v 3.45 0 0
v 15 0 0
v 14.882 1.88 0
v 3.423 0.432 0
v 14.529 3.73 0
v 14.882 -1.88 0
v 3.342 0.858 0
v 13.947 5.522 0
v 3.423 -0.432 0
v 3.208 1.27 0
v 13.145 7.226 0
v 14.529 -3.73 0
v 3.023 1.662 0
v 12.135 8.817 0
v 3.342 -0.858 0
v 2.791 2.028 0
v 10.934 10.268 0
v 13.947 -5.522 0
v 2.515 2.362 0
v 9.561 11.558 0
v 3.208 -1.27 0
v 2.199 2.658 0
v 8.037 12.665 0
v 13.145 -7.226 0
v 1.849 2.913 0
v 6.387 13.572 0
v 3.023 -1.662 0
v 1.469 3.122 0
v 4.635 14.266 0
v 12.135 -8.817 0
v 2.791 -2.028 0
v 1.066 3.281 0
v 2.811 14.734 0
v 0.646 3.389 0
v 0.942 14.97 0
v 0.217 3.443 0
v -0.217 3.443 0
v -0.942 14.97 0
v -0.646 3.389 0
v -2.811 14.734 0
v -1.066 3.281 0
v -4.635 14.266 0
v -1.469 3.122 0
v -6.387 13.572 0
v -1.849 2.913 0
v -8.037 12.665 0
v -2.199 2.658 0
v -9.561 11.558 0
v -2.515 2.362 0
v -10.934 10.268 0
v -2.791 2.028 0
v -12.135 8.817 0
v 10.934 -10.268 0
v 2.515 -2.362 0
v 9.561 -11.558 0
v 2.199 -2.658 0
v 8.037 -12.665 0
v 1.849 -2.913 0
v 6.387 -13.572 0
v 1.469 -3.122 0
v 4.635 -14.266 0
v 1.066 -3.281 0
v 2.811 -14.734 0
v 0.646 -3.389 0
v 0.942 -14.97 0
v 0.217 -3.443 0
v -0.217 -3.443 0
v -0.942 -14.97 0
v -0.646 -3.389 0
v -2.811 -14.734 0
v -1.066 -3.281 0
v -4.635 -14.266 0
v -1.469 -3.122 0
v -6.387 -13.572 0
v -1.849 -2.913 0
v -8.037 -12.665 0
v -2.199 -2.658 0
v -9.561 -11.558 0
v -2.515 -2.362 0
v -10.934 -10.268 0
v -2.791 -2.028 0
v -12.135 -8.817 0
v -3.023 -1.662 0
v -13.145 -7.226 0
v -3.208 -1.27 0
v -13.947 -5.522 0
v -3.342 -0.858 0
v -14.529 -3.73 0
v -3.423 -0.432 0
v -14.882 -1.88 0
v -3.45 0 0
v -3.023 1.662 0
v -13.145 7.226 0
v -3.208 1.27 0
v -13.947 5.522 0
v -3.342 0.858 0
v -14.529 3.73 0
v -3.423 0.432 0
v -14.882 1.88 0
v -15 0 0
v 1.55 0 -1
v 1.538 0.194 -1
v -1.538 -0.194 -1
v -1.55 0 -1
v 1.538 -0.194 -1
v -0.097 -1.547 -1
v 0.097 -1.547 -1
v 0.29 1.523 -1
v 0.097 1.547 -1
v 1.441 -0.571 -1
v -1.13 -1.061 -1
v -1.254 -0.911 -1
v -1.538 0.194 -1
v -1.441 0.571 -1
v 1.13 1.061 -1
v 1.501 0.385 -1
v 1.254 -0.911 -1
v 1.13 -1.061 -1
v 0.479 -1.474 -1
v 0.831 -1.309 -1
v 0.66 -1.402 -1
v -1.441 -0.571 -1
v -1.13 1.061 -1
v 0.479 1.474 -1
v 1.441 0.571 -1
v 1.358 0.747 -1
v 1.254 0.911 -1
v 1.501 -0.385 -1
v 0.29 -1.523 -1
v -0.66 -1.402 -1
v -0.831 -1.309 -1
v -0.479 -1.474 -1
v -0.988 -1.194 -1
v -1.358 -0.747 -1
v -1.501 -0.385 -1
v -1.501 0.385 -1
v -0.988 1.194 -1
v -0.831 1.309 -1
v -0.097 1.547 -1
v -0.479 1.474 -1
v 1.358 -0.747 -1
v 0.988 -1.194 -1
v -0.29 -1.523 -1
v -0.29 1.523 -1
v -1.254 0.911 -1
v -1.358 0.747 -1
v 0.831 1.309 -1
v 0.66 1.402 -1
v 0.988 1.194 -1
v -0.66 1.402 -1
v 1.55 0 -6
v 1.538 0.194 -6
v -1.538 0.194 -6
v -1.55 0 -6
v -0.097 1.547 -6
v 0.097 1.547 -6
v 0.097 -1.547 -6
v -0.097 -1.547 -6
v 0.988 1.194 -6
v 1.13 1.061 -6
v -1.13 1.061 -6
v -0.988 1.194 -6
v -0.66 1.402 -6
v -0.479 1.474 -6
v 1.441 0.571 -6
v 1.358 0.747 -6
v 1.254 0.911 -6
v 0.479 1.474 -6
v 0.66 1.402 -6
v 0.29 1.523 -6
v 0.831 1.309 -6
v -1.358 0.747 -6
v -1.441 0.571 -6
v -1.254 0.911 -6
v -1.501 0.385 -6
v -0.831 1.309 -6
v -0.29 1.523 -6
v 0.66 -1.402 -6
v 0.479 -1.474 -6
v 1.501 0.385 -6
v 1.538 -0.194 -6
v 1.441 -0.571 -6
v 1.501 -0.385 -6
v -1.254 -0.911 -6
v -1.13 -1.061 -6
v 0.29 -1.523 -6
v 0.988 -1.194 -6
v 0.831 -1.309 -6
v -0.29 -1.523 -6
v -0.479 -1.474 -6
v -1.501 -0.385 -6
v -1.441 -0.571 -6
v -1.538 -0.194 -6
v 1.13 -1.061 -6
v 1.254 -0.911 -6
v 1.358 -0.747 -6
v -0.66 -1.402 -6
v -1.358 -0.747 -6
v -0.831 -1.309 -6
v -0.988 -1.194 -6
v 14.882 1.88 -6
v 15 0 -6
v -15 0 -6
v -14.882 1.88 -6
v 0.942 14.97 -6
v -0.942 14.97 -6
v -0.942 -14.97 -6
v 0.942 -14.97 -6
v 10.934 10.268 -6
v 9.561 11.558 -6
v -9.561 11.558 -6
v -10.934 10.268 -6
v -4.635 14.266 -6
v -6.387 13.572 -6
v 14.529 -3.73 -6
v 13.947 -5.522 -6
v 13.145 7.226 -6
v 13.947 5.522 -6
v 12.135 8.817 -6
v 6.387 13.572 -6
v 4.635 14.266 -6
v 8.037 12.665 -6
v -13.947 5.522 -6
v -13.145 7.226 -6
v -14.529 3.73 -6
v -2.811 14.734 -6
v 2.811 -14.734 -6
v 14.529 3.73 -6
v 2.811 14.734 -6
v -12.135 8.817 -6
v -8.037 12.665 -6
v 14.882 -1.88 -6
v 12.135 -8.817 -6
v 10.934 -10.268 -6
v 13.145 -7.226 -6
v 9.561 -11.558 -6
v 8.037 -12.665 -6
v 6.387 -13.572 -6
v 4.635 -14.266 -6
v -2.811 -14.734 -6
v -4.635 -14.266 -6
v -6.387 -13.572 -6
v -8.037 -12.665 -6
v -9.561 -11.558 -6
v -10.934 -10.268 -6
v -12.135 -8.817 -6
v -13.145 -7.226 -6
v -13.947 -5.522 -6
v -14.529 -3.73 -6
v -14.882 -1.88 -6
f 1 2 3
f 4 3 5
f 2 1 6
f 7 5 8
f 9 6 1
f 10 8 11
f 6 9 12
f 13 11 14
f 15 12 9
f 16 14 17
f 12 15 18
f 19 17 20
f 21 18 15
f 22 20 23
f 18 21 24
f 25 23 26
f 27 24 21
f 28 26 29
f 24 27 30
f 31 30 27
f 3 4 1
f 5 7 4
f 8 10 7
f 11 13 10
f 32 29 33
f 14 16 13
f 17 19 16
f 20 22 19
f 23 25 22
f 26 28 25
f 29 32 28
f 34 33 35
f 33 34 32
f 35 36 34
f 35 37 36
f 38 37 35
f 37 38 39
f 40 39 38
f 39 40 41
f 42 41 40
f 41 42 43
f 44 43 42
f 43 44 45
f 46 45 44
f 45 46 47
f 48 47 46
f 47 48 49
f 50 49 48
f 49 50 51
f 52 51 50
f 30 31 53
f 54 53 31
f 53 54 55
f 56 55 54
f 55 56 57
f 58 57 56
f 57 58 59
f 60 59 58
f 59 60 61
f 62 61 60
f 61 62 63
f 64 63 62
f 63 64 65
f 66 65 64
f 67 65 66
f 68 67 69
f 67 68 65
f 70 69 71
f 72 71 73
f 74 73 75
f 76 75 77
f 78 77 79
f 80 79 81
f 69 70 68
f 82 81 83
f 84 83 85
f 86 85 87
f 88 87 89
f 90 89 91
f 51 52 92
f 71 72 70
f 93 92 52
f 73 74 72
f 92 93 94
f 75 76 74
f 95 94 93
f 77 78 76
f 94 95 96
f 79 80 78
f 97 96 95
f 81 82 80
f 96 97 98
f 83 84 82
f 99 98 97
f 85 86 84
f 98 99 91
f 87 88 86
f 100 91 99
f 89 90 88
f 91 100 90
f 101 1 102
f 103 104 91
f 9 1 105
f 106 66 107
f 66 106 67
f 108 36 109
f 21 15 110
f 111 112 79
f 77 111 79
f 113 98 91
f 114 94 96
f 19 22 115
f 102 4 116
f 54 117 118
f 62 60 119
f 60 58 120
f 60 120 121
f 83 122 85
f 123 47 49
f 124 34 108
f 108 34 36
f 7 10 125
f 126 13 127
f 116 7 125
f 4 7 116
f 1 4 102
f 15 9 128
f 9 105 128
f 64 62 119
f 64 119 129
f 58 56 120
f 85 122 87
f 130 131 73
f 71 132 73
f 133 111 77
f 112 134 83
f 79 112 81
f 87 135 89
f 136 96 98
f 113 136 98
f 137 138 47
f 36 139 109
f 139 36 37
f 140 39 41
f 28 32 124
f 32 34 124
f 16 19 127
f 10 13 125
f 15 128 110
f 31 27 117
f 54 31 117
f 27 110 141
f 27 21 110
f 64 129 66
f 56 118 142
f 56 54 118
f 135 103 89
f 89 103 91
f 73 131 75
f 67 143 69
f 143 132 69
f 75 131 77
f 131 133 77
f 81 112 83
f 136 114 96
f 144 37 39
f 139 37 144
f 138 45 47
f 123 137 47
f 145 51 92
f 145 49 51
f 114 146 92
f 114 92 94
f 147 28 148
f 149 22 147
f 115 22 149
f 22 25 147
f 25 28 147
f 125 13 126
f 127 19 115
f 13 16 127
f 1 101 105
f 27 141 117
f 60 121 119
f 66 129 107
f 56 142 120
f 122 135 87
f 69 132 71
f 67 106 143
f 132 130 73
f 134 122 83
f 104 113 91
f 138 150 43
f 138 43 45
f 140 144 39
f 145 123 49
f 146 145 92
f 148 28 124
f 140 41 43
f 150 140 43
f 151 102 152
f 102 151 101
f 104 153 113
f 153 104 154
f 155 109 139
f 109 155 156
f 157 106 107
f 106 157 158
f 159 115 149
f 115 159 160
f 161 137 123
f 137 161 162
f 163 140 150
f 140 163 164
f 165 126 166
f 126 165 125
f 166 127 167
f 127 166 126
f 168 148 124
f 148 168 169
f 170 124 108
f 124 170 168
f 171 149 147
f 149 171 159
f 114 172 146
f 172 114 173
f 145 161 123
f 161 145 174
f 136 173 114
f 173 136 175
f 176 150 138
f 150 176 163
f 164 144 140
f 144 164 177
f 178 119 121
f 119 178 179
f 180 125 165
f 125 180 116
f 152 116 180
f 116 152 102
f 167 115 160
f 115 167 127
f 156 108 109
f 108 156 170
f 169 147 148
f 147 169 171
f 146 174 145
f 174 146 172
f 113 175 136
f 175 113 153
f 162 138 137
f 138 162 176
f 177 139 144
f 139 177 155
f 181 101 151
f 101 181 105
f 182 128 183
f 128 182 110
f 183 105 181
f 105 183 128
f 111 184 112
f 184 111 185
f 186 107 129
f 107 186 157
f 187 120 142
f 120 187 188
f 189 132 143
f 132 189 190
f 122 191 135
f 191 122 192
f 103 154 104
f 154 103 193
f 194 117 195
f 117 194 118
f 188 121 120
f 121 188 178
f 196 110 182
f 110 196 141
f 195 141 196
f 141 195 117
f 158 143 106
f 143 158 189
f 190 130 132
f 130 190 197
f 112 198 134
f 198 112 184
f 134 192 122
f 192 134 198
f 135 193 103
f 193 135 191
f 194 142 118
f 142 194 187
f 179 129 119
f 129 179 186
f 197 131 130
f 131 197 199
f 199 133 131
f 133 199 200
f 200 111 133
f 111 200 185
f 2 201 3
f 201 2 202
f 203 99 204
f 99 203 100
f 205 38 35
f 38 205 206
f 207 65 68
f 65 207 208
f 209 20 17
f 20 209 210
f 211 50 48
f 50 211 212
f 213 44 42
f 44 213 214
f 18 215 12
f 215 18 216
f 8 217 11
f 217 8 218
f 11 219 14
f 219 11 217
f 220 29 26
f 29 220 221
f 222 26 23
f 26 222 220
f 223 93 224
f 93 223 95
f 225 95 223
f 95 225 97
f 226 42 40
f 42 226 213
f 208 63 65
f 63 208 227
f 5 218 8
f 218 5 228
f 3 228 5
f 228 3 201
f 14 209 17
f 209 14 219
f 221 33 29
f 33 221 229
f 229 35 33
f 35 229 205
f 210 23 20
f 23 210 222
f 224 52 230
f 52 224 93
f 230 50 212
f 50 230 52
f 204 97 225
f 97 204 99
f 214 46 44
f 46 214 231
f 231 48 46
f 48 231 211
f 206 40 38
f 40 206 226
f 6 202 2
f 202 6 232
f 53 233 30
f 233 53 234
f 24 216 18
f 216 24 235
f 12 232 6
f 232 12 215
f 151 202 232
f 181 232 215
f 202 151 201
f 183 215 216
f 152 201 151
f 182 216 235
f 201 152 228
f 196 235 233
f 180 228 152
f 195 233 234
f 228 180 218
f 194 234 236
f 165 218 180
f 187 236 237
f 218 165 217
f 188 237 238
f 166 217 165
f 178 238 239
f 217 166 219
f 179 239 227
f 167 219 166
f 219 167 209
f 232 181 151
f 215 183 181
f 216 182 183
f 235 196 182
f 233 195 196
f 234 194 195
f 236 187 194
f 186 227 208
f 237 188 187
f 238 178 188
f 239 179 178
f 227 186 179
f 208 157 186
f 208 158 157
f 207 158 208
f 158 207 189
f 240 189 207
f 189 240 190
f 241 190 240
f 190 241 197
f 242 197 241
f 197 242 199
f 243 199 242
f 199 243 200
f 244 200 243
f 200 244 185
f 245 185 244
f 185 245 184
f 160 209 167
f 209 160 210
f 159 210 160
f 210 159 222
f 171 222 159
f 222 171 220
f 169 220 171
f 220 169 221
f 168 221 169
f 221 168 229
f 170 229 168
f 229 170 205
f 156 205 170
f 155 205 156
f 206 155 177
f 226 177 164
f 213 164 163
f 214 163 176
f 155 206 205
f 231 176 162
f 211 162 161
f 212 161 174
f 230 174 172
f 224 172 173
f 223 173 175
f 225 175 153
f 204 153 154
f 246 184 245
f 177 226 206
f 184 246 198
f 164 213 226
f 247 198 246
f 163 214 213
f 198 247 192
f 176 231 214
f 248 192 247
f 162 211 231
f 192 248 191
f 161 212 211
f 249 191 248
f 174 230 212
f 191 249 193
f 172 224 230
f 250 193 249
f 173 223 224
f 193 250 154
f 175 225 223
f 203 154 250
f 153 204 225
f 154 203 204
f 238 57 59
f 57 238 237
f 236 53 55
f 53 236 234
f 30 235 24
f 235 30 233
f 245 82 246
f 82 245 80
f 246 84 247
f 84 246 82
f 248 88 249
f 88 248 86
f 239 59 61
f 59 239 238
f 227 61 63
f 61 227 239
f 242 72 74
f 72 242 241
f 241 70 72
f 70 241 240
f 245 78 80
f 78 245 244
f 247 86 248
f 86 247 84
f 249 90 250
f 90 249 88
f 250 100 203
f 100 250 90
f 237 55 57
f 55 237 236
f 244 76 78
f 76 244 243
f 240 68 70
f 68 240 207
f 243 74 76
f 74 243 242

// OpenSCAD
$fn = 50;


difference() {
	union() {
		translate(v = [0, 0, -6.0000000000]) {
			cylinder(h = 6, r = 15.0000000000);
		}
	}
	union() {
		translate(v = [0, 0, 0]) {
			rotate(a = [0, 0, 0]) {
				difference() {
					union() {
						translate(v = [0, 0, -9.0000000000]) {
							cylinder(h = 9, r = 1.2500000000);
						}
						translate(v = [0, 0, -1.0000000000]) {
							cylinder(h = 1.0000000000, r1 = 1.5500000000, r2 = 3.4500000000);
						}
						translate(v = [0, 0, -9.0000000000]) {
							cylinder(h = 9, r = 1.5500000000);
						}
						translate(v = [0, 0, -9.0000000000]) {
							cylinder(h = 9, r = 1.2500000000);
						}
					}
					union();
				}
			}
		}
	}
}
